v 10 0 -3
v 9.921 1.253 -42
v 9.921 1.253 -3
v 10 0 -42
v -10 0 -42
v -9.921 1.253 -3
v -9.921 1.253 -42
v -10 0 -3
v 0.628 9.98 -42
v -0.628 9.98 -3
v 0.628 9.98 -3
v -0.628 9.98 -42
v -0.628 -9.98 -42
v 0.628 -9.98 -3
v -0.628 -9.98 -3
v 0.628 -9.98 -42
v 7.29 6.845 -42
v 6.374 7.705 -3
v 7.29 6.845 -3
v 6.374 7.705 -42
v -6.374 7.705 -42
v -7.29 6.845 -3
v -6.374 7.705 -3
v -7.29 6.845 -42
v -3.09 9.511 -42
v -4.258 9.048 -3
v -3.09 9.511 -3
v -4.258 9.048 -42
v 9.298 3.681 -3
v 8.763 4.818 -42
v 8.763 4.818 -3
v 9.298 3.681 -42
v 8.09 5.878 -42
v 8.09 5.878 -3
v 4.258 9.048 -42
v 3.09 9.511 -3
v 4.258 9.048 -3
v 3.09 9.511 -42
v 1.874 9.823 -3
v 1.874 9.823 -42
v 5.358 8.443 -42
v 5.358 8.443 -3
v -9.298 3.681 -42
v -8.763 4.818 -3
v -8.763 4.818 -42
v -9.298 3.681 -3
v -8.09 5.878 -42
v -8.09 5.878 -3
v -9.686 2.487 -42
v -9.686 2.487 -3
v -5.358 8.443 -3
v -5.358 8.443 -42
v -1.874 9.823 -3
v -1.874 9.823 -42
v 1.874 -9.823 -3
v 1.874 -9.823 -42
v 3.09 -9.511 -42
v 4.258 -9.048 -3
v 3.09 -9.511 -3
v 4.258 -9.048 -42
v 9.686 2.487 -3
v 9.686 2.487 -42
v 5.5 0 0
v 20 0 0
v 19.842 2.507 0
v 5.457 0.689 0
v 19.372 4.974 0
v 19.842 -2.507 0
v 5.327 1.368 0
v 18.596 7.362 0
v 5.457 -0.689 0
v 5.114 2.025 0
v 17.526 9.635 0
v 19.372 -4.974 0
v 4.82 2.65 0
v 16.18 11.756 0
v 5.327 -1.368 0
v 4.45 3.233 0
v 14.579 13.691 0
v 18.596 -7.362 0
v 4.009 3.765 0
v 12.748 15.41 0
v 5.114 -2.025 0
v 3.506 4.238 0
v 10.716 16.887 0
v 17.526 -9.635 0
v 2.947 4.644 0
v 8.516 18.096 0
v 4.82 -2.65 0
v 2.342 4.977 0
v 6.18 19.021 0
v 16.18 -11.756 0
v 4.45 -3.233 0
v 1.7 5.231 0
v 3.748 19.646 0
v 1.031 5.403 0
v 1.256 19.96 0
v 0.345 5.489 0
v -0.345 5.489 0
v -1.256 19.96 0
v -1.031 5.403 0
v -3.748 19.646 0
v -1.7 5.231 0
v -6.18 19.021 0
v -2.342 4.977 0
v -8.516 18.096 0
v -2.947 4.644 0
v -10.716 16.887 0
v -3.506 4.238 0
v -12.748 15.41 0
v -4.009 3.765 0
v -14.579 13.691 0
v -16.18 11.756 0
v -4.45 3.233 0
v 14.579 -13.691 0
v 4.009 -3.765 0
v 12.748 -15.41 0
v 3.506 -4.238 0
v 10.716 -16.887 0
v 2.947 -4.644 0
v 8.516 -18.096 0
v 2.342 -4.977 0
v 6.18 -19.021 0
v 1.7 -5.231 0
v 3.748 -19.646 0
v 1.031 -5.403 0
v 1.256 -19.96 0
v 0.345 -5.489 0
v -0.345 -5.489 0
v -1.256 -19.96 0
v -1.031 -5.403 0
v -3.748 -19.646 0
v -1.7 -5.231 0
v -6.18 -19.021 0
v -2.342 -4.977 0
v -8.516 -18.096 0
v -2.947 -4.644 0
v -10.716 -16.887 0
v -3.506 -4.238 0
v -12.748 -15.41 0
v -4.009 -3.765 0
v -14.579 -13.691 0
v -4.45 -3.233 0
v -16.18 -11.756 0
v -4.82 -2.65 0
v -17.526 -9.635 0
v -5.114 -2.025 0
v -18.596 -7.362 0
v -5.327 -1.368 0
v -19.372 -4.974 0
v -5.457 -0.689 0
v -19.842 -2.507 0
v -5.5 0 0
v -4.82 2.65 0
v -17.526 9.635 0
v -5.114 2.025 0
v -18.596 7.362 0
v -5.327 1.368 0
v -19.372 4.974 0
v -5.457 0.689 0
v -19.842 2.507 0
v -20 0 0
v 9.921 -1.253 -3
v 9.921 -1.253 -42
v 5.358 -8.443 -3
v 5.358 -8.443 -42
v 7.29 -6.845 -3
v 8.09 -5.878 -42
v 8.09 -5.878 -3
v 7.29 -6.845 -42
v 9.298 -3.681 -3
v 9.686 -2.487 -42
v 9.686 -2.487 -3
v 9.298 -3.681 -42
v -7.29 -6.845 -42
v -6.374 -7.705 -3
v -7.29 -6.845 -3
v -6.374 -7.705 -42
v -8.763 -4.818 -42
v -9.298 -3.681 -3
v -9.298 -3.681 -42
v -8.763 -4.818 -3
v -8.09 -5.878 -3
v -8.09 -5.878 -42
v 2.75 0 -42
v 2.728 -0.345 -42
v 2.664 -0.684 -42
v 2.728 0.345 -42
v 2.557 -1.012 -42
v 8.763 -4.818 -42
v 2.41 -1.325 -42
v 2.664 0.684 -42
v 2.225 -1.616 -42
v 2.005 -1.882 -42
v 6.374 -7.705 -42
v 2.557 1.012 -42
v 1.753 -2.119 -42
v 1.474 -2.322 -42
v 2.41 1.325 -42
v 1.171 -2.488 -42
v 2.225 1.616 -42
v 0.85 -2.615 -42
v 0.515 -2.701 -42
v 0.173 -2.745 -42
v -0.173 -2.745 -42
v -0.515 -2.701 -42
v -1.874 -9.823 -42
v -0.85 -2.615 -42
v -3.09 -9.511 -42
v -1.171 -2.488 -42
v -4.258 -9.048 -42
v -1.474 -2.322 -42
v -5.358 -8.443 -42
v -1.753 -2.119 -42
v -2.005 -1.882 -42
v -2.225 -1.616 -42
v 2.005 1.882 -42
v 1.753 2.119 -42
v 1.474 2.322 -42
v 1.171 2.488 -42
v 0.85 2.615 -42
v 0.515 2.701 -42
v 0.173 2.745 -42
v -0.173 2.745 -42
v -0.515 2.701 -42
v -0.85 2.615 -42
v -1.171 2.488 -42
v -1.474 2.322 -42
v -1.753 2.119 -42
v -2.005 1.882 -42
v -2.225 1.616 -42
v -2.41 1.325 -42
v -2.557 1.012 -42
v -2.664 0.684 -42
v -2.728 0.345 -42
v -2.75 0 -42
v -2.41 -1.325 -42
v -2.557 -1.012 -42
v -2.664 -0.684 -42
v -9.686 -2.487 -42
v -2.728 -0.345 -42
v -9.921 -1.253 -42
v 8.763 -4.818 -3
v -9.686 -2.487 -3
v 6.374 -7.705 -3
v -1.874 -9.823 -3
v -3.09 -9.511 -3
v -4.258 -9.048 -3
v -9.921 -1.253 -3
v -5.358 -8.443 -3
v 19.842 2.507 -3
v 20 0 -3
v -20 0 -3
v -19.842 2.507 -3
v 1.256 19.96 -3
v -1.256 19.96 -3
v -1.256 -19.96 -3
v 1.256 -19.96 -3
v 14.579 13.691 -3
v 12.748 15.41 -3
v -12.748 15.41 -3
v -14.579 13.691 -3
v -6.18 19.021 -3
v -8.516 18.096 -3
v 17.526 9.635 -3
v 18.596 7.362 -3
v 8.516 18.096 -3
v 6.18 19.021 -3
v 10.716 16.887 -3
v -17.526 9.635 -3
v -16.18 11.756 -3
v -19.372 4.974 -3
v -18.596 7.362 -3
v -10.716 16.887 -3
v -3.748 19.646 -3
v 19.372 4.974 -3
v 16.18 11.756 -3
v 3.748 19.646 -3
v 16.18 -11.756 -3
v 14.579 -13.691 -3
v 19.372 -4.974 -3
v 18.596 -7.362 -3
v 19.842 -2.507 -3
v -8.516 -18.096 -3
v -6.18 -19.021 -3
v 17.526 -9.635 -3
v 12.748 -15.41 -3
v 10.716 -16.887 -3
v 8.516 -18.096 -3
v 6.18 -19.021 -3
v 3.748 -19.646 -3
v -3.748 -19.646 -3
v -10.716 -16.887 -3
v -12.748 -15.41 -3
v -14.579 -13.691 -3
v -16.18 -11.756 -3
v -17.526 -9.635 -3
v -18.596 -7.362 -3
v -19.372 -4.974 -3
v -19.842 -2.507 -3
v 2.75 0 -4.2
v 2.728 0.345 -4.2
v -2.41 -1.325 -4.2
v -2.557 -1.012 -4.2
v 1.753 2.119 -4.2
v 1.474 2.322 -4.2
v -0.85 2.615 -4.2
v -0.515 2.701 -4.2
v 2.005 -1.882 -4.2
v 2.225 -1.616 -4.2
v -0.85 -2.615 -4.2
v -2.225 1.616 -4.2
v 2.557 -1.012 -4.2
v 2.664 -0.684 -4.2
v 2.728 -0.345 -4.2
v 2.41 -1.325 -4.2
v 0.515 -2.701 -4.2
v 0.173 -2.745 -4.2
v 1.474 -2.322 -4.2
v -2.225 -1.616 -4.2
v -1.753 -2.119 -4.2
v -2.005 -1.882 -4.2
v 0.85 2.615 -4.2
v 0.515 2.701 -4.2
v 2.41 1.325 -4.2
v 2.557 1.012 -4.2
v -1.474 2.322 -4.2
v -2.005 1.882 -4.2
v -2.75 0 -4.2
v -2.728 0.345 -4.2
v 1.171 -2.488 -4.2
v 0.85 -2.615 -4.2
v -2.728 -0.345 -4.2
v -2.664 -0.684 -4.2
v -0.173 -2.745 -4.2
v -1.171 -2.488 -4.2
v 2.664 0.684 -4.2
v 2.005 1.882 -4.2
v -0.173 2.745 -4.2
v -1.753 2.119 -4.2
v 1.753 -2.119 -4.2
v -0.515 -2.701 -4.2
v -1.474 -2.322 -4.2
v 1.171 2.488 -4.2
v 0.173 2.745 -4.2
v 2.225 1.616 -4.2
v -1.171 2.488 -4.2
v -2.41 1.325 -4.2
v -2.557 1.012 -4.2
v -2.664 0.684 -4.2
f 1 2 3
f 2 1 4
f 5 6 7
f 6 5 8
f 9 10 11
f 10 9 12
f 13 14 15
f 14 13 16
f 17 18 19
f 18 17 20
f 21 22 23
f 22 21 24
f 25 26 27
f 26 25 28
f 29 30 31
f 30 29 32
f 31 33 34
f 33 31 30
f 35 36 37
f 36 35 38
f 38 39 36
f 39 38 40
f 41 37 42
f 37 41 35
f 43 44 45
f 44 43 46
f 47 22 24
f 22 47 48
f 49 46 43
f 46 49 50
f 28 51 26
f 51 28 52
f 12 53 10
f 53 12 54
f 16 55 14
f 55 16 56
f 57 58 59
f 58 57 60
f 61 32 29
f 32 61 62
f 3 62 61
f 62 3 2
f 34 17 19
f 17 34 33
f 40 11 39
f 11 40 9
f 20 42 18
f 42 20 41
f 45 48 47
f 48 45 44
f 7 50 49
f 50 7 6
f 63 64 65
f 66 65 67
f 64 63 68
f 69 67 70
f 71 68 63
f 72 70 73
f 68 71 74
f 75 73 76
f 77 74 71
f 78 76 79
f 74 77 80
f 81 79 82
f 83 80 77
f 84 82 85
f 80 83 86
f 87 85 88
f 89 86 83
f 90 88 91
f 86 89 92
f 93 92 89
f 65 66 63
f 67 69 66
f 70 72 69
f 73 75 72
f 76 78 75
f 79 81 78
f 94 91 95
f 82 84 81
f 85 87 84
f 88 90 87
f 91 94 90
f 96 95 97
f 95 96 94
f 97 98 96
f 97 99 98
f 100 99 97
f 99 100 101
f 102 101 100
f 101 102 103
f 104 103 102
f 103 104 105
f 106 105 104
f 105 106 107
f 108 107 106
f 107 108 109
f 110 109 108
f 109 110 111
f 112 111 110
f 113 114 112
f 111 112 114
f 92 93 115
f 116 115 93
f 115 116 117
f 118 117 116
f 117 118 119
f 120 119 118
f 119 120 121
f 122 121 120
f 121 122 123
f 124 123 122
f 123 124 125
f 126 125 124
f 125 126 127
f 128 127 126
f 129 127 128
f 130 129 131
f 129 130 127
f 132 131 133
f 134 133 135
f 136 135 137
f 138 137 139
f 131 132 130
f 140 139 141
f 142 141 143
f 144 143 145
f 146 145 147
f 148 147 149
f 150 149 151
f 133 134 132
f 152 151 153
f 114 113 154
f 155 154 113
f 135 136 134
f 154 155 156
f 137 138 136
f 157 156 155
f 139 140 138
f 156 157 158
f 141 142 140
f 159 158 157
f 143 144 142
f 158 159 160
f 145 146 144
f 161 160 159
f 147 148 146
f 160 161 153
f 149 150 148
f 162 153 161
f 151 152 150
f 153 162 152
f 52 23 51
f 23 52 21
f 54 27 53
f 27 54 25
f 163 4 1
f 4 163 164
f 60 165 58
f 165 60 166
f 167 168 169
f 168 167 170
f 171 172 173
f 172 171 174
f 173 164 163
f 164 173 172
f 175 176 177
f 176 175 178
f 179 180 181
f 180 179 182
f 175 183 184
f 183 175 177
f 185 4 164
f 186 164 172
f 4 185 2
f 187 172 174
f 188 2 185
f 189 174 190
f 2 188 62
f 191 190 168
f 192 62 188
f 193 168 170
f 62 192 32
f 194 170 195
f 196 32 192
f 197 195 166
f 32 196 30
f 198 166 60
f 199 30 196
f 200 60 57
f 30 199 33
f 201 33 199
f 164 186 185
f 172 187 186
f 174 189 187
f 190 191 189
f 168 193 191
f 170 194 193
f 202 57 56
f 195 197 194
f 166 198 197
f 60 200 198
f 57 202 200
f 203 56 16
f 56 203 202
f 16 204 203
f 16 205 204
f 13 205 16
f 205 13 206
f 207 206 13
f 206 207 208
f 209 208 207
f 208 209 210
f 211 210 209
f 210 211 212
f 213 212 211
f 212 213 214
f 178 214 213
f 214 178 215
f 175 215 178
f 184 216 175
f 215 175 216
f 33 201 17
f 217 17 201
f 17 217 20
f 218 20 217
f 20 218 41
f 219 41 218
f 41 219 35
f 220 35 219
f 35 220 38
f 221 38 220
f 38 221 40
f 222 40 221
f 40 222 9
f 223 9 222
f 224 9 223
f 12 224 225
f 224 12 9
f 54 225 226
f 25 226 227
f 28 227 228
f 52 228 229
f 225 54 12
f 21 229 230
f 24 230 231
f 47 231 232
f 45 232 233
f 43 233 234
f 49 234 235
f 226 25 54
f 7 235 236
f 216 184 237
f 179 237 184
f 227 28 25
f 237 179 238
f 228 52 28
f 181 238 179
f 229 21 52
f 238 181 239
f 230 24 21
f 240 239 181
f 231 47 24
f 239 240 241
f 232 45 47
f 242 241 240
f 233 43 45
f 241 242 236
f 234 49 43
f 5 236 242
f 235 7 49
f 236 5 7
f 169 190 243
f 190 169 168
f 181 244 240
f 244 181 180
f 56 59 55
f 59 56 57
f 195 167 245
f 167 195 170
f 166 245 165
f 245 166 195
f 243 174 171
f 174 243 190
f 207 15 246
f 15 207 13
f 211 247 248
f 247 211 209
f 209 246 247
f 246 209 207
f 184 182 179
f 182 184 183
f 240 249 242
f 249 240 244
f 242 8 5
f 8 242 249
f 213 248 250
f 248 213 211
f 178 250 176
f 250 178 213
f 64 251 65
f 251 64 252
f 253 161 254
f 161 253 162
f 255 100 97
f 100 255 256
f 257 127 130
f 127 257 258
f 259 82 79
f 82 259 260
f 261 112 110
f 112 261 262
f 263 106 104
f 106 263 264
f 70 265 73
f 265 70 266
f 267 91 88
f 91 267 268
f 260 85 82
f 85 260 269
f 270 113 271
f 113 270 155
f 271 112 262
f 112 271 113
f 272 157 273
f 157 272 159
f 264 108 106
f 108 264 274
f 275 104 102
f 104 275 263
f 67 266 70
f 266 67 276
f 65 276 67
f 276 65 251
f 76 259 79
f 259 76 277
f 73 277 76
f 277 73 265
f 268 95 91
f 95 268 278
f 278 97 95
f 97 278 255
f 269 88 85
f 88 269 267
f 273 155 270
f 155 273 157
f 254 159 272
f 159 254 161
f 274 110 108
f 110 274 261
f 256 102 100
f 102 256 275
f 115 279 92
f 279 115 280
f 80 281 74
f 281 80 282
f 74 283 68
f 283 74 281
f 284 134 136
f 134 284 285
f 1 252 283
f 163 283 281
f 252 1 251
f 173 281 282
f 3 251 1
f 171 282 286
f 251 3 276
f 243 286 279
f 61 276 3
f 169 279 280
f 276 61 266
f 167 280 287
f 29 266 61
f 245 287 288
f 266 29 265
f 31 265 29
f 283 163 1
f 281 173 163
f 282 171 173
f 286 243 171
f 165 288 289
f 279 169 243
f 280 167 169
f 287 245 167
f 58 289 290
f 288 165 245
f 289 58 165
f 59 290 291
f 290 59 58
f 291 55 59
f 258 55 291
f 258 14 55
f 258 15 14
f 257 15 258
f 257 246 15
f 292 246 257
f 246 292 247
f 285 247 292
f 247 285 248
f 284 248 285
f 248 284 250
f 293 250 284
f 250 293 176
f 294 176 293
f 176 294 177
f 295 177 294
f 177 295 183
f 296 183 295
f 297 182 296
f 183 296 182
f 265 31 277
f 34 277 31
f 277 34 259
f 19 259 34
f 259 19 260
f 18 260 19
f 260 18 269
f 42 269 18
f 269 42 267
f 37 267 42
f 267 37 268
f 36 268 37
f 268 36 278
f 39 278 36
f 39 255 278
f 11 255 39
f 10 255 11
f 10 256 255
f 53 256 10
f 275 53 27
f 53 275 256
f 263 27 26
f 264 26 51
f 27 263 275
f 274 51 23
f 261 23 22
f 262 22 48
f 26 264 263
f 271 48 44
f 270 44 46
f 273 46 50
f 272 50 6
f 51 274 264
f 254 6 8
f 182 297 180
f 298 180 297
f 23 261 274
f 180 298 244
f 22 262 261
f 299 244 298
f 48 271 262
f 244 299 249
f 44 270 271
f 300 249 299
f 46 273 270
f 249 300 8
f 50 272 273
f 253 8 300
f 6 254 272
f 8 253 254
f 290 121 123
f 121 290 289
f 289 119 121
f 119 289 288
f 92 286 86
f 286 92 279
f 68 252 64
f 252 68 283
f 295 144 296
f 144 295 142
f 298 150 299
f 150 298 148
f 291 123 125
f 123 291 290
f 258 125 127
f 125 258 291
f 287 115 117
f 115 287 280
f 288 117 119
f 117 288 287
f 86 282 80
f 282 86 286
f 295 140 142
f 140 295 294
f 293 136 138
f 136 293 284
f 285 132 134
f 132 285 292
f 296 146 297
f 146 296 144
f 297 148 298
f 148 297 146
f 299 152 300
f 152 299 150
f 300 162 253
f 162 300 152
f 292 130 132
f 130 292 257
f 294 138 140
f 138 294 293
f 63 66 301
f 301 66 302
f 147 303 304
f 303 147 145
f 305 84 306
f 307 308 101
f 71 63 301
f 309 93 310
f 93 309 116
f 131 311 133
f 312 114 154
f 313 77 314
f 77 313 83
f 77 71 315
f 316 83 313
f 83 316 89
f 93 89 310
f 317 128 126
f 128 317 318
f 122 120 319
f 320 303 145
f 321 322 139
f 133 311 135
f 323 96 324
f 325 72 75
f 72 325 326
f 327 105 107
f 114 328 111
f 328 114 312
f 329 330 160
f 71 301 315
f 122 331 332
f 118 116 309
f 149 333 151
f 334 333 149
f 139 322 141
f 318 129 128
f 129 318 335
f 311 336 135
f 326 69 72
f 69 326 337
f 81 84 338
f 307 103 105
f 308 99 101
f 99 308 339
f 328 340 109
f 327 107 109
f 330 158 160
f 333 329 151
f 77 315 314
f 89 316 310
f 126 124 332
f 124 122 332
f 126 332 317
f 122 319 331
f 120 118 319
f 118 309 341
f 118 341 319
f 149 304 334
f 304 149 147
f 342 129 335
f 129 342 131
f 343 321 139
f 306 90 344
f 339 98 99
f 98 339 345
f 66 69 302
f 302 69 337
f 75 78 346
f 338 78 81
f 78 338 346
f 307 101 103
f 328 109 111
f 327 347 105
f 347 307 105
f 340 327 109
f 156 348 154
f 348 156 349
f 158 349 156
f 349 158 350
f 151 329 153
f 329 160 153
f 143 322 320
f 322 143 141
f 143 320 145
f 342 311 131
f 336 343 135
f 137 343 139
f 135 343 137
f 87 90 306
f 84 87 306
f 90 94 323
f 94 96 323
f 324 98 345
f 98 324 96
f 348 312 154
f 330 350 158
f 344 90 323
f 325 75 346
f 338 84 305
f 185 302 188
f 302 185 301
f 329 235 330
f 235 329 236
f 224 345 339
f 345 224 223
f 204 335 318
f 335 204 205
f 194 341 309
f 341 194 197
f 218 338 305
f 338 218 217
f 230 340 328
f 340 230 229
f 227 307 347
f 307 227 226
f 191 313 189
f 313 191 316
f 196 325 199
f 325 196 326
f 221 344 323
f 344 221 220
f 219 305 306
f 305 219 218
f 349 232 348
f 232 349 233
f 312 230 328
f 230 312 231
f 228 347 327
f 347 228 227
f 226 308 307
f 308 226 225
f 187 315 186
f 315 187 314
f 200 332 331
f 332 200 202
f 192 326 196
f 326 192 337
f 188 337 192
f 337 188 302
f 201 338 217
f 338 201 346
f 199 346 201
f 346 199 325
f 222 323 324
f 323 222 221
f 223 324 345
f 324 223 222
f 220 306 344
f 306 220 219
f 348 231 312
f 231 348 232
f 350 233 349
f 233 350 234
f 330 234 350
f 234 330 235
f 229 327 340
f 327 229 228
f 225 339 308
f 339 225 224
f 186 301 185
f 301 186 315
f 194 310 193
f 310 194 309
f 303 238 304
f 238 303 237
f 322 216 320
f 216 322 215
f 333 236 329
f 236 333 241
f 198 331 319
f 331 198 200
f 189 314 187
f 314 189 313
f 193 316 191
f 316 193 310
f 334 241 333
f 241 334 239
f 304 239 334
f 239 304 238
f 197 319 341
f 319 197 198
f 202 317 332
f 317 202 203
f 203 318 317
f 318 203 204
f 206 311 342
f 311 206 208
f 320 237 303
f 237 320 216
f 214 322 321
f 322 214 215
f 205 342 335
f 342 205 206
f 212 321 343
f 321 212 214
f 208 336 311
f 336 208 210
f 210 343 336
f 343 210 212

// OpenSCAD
$fn = 50;


difference() {
	union() {
		translate(v = [0, 0, -42.0000000000]) {
			cylinder(h = 42, r = 10.0000000000);
		}
		translate(v = [0, 0, -3.0000000000]) {
			cylinder(h = 3, r = 20.0000000000);
		}
	}
	union() {
		translate(v = [0, 0, 0]) {
			rotate(a = [0, 0, 0]) {
				difference() {
					union() {
						#translate(v = [0, 0, -42.0000000000]) {
							cylinder(h = 42, r = 2.2500000000);
						}
						#translate(v = [0, 0, -4.2000000000]) {
							cylinder(h = 4.2000000000, r = 10.0000000000, r1 = 2.7500000000, r2 = 5.5000000000);
						}
						#translate(v = [0, 0, -42.0000000000]) {
							cylinder(h = 42, r = 2.7500000000);
						}
						#translate(v = [0, 0, -42.0000000000]) {
							cylinder(h = 42, r = 2.2500000000);
						}
					}
					union();
				}
			}
		}
	}
}
